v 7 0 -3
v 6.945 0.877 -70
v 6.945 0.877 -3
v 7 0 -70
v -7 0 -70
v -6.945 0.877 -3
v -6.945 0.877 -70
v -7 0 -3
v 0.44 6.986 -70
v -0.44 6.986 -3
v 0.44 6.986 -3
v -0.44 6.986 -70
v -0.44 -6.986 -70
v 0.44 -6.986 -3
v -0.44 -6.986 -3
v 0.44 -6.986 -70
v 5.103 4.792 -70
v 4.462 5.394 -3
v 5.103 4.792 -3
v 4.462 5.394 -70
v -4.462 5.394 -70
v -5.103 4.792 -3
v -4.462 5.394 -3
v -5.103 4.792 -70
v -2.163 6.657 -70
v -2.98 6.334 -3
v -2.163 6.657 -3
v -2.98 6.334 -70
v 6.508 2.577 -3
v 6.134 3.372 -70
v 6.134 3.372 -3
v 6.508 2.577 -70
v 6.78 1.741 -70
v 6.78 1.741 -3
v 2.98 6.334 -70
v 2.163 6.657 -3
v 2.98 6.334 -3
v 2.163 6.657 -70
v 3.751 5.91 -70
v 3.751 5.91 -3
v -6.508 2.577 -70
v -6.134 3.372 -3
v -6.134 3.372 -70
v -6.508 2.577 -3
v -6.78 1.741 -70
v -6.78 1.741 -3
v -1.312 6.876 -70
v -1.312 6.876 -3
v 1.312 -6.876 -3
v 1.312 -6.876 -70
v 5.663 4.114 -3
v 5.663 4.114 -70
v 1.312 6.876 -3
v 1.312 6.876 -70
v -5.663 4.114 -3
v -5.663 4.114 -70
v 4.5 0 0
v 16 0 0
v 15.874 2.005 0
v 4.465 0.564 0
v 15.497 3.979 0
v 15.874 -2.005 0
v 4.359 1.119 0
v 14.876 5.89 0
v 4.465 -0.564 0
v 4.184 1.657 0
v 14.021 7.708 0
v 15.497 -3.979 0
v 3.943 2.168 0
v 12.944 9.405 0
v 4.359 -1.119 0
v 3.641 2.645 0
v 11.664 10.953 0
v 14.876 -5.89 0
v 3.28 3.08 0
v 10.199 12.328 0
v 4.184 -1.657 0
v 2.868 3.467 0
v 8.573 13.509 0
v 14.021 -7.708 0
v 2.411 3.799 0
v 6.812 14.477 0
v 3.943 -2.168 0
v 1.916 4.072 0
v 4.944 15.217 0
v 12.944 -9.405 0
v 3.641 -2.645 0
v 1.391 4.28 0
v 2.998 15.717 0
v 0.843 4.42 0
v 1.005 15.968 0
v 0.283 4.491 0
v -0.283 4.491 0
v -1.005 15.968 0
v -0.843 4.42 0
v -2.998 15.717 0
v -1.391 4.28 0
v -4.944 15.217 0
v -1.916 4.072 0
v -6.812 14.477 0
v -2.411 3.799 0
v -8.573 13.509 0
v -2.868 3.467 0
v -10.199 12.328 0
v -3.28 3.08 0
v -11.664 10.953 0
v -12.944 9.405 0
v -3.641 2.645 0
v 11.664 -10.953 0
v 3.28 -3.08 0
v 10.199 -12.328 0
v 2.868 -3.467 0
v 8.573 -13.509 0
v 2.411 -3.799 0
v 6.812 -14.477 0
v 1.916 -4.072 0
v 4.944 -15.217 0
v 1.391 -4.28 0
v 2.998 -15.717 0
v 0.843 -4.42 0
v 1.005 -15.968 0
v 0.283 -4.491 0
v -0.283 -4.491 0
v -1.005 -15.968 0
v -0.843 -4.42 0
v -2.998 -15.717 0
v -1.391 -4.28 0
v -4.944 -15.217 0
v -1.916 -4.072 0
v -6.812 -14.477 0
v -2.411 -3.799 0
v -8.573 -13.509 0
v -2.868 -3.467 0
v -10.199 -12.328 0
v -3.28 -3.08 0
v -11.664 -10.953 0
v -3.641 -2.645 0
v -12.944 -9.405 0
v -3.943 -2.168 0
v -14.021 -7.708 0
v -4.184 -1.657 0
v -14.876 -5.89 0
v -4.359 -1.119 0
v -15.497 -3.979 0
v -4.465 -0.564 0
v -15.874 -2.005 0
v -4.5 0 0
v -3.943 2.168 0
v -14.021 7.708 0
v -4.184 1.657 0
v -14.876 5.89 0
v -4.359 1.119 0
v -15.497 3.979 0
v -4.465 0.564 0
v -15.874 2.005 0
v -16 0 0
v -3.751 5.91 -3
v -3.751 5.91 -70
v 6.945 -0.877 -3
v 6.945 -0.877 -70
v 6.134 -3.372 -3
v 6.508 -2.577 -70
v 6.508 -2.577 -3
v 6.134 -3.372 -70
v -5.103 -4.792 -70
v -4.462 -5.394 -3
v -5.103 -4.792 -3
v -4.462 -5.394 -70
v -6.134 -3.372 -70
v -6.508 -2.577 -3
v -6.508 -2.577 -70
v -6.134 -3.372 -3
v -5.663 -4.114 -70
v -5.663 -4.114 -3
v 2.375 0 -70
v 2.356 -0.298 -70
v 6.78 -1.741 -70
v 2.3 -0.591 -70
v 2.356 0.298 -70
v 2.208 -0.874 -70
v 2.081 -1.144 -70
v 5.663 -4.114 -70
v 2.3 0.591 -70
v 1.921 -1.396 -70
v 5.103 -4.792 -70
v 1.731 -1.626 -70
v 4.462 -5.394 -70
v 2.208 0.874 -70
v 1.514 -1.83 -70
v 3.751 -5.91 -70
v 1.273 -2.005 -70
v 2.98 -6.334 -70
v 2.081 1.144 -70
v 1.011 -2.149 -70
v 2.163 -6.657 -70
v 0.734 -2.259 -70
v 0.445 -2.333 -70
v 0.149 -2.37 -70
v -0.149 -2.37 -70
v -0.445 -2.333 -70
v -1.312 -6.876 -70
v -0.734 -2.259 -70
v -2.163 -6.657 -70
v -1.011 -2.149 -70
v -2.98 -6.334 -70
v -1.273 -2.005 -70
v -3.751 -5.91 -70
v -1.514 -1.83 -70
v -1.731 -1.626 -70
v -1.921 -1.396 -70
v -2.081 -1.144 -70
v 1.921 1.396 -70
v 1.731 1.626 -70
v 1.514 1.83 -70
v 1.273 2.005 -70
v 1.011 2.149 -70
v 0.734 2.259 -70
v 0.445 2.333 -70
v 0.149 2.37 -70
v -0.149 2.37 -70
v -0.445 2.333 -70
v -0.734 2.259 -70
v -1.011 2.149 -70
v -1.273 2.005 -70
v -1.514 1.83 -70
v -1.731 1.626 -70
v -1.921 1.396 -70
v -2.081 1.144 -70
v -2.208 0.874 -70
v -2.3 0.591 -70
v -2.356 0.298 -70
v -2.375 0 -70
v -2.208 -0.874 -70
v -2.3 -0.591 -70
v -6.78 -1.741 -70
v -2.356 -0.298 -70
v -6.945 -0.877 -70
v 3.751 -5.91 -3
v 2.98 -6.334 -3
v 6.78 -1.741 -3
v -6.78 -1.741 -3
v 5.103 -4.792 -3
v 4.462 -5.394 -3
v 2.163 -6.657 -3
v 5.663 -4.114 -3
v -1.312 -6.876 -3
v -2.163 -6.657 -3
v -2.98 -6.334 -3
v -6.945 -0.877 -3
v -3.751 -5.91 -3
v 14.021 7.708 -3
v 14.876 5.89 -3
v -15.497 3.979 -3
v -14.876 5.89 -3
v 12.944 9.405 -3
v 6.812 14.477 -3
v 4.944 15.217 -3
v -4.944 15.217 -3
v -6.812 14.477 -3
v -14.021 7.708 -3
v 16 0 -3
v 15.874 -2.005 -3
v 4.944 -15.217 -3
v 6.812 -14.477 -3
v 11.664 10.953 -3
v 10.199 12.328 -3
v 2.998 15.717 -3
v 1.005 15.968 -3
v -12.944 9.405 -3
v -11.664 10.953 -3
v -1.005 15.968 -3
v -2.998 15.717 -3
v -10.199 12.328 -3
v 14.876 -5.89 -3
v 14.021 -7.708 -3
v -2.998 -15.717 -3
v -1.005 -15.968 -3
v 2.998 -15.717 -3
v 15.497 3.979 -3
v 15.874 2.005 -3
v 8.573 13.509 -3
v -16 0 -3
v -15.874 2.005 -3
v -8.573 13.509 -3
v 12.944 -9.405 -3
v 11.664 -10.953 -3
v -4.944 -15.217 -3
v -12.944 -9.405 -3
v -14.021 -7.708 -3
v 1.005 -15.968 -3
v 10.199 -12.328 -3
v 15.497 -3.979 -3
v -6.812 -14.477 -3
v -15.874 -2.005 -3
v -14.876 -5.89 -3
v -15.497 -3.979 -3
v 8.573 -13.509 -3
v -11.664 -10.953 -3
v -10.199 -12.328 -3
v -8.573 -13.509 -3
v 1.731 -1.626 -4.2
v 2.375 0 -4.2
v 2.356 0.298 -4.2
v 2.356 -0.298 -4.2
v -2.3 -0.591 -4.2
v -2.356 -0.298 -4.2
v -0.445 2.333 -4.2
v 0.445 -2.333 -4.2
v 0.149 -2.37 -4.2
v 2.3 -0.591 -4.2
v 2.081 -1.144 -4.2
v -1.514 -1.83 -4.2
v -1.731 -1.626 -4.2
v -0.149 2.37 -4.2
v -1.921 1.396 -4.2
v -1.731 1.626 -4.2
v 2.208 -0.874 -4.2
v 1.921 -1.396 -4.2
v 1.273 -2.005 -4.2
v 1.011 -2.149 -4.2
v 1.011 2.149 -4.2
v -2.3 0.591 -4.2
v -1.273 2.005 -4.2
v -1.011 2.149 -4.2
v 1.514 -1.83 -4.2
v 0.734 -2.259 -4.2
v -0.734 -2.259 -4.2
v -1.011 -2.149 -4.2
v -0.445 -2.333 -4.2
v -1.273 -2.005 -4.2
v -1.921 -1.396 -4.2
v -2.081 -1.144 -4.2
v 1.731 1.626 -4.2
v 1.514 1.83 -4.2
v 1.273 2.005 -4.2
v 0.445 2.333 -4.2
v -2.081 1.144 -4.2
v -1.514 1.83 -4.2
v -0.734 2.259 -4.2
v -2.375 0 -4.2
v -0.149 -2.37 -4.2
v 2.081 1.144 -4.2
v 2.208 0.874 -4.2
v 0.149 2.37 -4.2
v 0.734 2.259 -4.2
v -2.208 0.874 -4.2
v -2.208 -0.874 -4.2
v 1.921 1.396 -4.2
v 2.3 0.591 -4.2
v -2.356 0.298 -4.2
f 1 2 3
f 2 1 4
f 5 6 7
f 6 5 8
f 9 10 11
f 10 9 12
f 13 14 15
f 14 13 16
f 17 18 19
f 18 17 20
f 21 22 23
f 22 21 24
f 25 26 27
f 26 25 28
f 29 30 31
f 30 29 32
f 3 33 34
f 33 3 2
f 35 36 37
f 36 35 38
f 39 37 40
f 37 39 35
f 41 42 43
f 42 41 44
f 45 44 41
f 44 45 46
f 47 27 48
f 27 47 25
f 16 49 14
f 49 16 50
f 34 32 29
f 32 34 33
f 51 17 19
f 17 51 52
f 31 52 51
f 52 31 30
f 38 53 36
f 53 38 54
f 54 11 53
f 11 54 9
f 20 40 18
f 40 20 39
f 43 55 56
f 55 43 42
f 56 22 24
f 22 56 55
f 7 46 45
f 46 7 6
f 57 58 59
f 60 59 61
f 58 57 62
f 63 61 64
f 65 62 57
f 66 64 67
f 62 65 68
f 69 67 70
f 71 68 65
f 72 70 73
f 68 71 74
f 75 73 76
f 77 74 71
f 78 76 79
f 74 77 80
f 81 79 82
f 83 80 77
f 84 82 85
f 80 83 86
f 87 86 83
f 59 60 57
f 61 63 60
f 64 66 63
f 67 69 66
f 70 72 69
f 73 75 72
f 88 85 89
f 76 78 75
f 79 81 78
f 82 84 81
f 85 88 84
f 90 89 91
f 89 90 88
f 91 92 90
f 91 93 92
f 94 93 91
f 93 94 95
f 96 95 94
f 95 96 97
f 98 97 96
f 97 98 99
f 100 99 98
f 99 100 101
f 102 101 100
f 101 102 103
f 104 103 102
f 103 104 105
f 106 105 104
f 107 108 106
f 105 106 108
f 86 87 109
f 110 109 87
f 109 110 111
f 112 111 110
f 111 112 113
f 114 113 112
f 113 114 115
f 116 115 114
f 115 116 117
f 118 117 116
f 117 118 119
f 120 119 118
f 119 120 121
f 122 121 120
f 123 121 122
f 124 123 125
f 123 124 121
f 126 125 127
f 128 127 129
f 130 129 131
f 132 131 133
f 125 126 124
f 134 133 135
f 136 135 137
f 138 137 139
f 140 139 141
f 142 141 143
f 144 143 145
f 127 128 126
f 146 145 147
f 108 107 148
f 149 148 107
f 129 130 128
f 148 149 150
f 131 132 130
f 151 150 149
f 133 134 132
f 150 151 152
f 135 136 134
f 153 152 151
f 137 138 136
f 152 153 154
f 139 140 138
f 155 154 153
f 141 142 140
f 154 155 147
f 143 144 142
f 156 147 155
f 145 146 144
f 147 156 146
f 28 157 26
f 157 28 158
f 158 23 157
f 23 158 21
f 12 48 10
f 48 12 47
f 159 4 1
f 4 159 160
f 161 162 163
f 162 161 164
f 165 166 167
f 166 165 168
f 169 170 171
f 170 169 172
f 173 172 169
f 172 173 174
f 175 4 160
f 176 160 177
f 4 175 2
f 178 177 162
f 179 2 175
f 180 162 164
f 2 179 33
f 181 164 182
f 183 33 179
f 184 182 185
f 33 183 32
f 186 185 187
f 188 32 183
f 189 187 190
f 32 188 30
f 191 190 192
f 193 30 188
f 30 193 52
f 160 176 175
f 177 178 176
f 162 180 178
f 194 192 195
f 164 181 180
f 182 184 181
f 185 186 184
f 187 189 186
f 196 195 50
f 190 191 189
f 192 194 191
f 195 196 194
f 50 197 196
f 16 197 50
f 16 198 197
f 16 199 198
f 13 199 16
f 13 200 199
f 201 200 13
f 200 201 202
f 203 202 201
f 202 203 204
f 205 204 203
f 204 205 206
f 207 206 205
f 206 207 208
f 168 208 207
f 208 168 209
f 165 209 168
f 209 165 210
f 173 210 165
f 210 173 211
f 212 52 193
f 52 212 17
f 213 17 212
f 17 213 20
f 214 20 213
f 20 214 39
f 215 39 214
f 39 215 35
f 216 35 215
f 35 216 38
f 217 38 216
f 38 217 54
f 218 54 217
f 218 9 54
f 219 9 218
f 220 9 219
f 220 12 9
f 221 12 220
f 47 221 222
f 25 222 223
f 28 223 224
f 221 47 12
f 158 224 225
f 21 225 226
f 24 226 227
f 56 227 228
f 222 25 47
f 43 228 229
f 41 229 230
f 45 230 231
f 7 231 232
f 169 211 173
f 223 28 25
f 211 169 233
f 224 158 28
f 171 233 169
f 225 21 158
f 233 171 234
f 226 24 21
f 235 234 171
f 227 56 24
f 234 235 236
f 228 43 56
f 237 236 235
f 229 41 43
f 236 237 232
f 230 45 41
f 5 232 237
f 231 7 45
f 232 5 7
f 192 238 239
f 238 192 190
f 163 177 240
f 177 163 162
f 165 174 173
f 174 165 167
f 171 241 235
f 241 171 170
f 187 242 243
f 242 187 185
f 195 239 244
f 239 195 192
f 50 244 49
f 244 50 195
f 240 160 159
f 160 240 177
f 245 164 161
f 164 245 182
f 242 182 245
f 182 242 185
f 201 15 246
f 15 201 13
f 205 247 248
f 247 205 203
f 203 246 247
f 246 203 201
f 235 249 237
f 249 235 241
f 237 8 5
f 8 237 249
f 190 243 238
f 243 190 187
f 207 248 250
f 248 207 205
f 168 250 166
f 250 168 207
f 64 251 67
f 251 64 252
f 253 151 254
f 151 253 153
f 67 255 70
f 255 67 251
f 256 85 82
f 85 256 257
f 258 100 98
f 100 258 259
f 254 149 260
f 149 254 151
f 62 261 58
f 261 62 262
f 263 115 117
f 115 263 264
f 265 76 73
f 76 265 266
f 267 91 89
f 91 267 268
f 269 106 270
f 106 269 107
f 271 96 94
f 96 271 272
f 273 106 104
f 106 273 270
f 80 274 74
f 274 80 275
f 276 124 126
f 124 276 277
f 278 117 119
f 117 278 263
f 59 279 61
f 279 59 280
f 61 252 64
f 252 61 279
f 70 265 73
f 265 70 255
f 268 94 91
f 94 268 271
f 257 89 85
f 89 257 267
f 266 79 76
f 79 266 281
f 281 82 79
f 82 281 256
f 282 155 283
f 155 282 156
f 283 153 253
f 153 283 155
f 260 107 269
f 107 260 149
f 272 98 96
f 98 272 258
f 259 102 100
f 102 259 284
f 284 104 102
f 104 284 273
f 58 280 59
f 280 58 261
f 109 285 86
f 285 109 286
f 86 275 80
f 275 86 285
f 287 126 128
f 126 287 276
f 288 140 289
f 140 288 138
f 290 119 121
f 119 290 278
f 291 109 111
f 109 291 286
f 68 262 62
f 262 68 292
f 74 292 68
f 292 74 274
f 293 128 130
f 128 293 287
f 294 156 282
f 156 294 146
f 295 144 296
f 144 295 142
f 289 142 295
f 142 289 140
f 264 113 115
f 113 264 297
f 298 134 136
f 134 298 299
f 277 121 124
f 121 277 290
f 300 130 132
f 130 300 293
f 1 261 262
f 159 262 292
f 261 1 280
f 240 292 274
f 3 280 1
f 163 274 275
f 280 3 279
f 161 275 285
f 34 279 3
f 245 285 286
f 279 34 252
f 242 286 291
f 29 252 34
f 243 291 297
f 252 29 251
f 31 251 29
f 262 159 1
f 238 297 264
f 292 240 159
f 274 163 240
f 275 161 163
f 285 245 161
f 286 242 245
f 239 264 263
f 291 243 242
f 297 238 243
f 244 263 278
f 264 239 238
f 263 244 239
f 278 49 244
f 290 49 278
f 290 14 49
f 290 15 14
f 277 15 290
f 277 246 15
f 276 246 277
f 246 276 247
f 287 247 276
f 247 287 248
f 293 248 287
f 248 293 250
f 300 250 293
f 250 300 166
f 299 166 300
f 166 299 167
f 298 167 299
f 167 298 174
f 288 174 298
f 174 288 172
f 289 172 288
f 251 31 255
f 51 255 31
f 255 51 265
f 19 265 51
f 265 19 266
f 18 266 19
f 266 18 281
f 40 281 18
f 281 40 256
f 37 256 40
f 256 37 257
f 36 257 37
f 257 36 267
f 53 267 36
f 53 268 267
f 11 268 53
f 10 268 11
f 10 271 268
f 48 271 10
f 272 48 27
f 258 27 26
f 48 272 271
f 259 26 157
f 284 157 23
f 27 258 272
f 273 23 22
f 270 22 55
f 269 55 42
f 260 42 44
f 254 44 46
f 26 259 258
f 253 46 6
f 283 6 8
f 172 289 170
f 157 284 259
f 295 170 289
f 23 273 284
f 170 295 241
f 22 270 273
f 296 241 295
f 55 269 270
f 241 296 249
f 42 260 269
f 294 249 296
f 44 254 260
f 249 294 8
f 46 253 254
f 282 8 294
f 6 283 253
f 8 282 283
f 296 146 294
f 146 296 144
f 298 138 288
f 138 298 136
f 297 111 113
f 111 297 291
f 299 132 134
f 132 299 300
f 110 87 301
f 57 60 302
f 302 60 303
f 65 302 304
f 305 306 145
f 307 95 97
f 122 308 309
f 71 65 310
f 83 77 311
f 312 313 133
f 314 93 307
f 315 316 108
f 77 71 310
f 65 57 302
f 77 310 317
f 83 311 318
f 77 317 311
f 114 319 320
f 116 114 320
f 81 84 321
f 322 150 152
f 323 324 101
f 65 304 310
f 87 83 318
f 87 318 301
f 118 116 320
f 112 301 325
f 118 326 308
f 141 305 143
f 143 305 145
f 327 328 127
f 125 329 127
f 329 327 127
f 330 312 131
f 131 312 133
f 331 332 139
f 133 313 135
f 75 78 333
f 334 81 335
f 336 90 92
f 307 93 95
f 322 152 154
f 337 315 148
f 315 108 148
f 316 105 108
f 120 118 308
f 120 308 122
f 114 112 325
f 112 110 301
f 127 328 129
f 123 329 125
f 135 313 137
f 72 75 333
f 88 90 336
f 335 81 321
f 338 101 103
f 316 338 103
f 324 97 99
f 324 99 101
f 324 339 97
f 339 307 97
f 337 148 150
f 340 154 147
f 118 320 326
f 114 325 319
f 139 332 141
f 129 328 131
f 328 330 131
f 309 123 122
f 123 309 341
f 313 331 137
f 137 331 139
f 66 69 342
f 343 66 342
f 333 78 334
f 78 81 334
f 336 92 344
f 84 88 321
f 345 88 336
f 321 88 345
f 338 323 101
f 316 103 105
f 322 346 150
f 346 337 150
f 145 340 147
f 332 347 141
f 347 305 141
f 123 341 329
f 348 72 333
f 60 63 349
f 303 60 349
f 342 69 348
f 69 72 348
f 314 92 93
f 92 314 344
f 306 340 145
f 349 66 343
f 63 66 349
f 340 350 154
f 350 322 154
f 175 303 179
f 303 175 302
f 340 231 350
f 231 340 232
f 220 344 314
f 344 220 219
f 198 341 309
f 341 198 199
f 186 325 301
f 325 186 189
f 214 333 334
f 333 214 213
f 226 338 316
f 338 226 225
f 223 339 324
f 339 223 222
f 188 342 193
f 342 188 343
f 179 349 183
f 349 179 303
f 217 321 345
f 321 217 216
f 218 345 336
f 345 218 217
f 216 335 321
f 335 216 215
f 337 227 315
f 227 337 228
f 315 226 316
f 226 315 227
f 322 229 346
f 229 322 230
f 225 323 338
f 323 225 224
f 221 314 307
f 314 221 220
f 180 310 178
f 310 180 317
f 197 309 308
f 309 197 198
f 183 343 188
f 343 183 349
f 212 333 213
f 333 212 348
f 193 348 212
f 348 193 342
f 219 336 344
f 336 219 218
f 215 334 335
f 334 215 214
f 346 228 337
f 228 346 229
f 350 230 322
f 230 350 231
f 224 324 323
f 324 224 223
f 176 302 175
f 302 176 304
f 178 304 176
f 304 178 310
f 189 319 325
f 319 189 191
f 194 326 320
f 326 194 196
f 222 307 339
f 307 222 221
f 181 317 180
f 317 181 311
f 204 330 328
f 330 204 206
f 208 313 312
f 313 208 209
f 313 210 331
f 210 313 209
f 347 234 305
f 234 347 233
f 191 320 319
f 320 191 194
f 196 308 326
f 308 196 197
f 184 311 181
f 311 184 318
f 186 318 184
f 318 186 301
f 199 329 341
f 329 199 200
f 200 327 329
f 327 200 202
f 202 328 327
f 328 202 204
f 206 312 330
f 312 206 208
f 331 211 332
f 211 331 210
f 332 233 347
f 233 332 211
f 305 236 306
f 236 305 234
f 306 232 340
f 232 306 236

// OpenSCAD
$fn = 50;


difference() {
	union() {
		translate(v = [0, 0, -70.0000000000]) {
			cylinder(h = 70, r = 7.0000000000);
		}
		translate(v = [0, 0, -3.0000000000]) {
			cylinder(h = 3, r = 16.0000000000);
		}
	}
	union() {
		translate(v = [0, 0, 0]) {
			rotate(a = [0, 0, 0]) {
				difference() {
					union() {
						#translate(v = [0, 0, -70.0000000000]) {
							cylinder(h = 70, r = 2.2500000000);
						}
						#translate(v = [0, 0, -4.2000000000]) {
							cylinder(h = 4.2000000000, r1 = 2.3750000000, r2 = 4.5000000000);
						}
						#translate(v = [0, 0, -70.0000000000]) {
							cylinder(h = 70, r = 2.3750000000);
						}
						#translate(v = [0, 0, -70.0000000000]) {
							cylinder(h = 70, r = 2.2500000000);
						}
					}
					union();
				}
			}
		}
	}
}
